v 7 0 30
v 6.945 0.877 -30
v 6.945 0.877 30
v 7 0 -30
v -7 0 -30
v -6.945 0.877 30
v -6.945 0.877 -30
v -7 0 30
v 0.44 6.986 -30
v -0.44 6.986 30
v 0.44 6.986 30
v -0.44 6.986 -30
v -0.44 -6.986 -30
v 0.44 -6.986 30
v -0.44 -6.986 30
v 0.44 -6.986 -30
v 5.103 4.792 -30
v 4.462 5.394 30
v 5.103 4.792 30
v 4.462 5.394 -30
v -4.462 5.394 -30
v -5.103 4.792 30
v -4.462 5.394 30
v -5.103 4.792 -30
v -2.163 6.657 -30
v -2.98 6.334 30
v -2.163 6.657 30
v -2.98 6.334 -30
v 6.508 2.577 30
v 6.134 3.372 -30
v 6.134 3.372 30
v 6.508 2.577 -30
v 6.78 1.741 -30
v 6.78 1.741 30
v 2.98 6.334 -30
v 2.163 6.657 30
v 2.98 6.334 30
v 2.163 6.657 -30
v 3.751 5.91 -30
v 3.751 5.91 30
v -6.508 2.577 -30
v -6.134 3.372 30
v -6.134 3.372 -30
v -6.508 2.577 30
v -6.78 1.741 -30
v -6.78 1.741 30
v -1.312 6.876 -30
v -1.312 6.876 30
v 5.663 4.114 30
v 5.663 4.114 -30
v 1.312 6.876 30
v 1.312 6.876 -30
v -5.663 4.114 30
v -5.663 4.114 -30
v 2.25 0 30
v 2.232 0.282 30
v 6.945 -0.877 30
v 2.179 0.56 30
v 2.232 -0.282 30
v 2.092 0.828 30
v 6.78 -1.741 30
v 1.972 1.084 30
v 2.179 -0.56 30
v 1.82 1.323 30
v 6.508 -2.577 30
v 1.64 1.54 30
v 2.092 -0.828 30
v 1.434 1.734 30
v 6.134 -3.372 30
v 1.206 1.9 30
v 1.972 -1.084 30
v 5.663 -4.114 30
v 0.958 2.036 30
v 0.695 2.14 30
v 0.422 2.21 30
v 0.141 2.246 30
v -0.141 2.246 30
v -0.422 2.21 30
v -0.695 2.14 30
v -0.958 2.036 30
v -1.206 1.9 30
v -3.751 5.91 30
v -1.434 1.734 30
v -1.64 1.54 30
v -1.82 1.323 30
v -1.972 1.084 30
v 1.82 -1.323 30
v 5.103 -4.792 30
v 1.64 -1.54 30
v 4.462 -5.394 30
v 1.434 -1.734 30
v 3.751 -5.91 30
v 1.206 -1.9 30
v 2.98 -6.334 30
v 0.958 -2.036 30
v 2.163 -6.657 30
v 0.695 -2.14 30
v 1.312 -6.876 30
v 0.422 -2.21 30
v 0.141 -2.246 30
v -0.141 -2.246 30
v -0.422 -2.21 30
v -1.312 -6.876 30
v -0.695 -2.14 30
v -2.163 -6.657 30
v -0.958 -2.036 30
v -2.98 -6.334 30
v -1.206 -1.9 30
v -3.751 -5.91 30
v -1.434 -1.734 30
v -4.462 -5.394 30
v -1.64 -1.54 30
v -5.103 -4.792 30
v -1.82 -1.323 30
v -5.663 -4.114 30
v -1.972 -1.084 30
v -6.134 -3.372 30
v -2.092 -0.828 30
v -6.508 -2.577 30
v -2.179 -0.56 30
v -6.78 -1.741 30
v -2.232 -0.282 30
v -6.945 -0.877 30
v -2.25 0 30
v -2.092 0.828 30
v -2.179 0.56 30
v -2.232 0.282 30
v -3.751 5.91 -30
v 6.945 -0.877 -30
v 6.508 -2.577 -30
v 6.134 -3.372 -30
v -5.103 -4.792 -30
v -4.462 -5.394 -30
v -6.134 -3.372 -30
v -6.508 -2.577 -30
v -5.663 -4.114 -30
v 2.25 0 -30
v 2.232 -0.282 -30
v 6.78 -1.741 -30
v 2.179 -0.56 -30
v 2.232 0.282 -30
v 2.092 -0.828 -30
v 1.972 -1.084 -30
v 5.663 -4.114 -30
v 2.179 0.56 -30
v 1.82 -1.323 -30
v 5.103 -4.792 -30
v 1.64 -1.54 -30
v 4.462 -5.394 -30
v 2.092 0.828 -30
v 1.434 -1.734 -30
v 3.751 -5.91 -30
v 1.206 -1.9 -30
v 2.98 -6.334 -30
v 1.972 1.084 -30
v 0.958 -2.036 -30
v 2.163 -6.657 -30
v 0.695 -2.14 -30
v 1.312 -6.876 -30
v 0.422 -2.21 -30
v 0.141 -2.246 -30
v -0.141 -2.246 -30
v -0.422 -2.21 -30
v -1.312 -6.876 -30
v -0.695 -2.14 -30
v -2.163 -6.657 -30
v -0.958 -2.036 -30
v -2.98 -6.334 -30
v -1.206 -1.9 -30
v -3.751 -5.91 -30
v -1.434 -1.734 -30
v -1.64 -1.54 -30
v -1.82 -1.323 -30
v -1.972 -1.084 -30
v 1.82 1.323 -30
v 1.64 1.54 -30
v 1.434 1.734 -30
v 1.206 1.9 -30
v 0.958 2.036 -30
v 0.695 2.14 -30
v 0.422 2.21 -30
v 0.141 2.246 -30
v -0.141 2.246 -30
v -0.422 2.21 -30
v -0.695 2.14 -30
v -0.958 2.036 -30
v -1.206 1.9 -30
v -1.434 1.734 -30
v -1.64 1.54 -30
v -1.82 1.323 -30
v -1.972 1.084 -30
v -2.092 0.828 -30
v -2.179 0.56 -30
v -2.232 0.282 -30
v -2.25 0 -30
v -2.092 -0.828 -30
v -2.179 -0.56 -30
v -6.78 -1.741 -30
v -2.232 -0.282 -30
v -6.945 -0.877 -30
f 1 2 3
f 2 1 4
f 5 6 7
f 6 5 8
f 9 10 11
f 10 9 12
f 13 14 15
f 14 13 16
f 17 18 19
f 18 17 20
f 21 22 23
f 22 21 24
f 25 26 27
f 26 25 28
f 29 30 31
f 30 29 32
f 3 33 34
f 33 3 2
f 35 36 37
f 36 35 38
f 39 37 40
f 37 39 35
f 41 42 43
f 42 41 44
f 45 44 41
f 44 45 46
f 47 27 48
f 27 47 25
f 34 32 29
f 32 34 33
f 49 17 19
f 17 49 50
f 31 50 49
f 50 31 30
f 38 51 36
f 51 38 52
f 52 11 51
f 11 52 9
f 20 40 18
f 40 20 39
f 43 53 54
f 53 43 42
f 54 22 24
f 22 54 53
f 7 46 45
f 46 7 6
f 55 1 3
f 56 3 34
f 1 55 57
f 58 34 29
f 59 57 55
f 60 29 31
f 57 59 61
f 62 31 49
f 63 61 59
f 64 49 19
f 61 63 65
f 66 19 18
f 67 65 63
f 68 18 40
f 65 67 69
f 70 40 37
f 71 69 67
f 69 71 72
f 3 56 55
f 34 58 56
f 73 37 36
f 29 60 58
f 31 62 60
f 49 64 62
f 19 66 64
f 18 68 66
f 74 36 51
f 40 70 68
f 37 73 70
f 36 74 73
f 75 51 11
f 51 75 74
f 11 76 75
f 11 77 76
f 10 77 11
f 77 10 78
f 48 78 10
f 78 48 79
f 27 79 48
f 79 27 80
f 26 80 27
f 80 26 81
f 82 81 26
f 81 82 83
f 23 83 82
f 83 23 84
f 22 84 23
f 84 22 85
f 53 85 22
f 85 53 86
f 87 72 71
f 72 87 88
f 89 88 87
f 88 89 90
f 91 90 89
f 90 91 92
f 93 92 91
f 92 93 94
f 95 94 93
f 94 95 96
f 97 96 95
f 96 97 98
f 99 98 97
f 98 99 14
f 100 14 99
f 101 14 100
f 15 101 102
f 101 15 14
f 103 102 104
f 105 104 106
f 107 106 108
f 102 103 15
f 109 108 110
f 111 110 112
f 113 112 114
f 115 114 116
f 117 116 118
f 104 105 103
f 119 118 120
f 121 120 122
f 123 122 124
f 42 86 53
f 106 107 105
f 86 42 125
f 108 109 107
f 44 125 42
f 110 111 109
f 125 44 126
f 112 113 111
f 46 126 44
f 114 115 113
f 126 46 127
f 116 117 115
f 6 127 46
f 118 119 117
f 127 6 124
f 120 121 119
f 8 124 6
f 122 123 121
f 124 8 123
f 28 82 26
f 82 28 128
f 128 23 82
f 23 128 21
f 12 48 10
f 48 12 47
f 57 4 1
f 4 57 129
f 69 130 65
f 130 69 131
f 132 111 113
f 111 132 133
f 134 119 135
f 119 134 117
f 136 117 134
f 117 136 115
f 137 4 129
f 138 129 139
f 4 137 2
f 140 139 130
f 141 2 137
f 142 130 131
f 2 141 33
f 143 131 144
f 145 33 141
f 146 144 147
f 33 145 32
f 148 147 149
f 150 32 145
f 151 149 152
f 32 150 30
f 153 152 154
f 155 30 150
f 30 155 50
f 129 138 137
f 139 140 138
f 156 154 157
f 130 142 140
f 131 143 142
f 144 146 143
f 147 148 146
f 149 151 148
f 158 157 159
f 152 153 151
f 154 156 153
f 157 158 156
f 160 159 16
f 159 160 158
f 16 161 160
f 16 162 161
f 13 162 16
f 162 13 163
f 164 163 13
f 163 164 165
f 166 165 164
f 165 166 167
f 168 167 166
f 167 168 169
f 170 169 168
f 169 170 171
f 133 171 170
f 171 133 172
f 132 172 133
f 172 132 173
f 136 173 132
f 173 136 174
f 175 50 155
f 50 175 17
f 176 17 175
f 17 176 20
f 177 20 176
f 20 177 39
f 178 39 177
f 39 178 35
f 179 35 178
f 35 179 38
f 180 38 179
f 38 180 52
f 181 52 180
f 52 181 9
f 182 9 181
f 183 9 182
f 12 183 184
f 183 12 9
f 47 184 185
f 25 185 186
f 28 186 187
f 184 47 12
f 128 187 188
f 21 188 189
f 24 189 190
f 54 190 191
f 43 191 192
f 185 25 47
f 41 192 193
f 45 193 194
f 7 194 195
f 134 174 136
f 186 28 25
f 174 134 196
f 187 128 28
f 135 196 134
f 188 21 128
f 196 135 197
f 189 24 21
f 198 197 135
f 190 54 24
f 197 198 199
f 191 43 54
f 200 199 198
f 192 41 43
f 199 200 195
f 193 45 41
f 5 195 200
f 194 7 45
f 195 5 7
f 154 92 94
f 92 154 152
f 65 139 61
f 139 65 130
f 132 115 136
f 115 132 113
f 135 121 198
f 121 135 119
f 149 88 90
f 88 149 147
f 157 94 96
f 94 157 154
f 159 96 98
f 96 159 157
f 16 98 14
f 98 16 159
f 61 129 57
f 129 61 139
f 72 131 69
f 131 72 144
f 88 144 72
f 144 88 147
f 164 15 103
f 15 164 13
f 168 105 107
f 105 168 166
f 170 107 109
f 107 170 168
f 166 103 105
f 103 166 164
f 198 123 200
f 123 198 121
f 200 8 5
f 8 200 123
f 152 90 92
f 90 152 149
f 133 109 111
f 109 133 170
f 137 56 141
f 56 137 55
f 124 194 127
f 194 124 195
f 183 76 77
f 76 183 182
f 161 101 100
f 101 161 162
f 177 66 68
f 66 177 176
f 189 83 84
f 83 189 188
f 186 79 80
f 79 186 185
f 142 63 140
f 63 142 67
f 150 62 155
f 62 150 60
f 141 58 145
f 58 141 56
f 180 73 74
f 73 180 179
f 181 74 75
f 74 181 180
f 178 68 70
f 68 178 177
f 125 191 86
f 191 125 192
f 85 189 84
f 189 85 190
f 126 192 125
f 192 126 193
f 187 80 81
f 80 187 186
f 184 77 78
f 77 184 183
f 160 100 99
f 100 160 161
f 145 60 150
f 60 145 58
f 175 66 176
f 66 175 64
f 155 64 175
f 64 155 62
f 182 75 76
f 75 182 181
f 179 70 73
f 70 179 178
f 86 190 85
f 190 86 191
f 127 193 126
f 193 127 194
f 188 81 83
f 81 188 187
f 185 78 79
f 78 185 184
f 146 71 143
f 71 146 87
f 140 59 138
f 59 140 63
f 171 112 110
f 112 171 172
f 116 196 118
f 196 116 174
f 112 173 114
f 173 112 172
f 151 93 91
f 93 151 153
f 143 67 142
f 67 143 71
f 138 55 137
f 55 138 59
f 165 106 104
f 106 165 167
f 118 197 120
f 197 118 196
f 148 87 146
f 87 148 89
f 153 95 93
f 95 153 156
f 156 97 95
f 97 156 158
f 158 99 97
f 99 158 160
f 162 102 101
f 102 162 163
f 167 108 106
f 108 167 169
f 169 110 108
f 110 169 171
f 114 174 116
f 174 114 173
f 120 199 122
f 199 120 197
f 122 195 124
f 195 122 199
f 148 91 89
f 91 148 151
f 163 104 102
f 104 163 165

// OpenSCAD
$fn = 50;


difference() {
	union() {
		translate(v = [0, 0, -30.0000000000]) {
			cylinder(h = 60, r = 7.0000000000);
		}
	}
	union() {
		translate(v = [0, 0, -100.0000000000]) {
			cylinder(h = 200, r = 2.2500000000);
		}
	}
}
